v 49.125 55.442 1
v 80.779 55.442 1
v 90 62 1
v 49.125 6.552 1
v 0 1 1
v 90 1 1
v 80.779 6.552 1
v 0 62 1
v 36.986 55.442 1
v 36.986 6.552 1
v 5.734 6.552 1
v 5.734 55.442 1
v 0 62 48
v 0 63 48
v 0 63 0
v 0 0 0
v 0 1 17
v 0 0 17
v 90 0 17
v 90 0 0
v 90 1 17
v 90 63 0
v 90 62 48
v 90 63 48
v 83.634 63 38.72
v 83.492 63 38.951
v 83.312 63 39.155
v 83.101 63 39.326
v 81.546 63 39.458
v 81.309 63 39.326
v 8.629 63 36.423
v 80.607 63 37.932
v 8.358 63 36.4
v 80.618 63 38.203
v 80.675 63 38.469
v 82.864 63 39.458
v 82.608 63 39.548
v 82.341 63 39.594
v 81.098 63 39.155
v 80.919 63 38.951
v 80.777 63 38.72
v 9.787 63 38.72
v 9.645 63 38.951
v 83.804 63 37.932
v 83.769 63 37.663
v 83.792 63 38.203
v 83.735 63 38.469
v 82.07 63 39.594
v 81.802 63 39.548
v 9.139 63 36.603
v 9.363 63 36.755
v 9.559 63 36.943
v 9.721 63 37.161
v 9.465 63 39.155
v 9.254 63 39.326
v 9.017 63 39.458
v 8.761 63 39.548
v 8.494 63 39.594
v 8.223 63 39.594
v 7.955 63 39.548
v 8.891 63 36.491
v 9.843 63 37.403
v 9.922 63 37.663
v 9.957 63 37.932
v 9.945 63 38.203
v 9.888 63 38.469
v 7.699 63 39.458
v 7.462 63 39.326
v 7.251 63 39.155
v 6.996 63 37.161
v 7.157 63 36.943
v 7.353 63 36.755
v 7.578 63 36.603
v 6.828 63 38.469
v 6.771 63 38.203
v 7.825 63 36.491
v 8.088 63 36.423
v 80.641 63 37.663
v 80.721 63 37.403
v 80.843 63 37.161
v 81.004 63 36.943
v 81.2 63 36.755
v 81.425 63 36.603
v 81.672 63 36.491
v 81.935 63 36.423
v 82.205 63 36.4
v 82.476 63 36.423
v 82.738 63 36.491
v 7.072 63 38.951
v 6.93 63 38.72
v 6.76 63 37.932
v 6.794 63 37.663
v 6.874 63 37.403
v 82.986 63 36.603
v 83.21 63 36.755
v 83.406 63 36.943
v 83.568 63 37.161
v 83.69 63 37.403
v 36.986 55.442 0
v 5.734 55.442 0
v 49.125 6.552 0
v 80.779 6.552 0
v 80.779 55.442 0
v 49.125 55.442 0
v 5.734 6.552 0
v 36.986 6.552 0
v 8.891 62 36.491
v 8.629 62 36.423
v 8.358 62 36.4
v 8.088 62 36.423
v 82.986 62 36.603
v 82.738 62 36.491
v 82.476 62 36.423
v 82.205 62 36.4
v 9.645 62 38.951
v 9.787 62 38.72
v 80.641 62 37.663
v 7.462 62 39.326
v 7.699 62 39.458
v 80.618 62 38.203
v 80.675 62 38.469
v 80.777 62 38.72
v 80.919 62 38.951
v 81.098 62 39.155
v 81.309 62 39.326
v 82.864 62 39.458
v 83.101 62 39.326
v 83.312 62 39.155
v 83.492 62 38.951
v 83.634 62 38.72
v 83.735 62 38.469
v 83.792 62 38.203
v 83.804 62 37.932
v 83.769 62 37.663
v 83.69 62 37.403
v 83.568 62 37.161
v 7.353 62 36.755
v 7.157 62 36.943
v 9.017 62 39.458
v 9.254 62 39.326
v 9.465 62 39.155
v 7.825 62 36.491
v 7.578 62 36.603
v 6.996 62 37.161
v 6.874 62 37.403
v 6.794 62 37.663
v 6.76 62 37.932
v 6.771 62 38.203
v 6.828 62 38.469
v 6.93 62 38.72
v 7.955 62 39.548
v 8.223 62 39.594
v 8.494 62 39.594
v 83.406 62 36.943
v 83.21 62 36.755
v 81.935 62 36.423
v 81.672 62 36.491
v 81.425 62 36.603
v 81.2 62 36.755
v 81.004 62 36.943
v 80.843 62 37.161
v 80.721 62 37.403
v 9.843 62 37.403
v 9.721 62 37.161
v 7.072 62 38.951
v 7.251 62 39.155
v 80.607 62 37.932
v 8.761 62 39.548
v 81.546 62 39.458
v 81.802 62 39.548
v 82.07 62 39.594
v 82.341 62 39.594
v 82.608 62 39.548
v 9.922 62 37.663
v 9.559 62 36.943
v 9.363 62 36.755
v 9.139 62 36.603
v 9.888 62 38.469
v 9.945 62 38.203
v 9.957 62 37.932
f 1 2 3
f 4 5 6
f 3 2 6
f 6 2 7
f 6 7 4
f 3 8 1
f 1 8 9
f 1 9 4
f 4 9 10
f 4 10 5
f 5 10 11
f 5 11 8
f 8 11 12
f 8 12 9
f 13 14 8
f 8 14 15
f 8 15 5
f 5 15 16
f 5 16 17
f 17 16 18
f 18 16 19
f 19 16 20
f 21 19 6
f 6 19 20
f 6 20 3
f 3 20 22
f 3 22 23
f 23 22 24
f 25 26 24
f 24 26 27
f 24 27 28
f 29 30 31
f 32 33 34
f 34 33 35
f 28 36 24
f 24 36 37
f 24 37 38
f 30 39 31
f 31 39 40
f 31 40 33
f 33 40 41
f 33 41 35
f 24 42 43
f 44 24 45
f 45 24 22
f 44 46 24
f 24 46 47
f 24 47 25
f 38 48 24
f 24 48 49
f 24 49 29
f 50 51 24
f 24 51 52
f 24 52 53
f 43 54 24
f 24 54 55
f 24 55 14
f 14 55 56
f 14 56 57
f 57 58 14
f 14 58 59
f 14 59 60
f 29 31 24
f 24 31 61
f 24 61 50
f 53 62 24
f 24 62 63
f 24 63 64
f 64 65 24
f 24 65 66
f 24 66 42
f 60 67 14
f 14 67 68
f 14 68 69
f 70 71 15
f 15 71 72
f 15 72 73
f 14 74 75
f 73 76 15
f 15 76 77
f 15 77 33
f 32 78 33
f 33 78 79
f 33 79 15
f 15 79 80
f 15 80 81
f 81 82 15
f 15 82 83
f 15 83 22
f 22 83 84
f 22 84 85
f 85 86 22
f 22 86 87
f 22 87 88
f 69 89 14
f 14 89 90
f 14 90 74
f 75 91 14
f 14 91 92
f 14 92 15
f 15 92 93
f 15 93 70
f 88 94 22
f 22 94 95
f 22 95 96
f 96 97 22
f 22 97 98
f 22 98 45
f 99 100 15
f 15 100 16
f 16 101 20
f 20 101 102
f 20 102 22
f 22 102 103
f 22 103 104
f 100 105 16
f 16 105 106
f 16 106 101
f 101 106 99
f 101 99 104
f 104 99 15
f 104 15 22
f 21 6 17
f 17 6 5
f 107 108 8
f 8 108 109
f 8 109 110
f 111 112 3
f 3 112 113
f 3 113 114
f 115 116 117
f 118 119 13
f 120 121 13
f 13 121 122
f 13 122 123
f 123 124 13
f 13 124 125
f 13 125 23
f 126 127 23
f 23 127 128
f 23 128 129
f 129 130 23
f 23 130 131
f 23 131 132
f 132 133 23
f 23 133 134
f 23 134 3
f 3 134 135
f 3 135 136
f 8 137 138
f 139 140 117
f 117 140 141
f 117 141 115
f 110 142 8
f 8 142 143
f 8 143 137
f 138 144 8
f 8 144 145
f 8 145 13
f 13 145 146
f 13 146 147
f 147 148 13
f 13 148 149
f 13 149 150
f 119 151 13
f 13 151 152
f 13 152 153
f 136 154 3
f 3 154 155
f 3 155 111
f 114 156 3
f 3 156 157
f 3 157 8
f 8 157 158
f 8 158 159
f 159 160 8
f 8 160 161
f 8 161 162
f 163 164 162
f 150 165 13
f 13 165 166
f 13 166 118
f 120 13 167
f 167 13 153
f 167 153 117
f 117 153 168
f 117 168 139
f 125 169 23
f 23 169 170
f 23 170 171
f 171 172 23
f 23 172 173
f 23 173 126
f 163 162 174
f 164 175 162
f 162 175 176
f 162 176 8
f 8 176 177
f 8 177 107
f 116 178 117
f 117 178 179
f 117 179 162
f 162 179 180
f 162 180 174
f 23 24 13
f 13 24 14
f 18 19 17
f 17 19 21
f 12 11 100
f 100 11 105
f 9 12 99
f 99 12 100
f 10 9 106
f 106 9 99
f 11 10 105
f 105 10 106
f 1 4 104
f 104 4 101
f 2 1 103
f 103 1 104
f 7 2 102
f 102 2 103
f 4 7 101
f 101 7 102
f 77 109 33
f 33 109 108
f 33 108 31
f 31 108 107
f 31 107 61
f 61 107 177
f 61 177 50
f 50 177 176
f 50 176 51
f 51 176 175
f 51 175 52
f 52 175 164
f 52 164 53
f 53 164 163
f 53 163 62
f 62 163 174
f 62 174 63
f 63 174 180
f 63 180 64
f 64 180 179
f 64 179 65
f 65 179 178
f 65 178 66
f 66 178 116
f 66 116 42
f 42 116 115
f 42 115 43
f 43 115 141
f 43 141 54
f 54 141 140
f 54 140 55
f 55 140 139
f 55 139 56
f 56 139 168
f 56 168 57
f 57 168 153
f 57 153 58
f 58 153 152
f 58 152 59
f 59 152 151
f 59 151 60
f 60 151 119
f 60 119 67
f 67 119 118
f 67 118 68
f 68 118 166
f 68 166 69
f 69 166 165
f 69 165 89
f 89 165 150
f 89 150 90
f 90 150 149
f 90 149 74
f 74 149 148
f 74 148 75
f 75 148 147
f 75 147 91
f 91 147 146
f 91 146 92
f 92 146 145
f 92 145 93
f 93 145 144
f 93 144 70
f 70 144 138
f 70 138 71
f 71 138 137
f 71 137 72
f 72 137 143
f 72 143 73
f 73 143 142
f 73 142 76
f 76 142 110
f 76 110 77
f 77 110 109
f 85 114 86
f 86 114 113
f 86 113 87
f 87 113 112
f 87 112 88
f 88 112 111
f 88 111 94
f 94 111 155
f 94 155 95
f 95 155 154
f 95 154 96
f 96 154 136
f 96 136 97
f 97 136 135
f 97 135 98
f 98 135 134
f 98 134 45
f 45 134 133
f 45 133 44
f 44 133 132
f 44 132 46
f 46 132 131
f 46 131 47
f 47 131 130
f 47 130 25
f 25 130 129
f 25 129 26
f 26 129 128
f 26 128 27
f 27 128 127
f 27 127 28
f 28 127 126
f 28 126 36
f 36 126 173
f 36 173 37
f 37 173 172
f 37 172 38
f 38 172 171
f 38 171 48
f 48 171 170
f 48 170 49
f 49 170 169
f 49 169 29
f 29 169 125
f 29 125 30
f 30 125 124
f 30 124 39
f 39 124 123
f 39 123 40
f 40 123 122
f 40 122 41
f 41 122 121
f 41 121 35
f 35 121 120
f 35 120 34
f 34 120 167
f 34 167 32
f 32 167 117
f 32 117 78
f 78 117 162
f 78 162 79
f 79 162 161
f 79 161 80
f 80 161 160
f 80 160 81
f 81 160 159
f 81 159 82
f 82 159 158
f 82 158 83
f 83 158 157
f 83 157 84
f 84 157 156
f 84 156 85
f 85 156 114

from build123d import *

# Parameters (mm, degrees)
SKETCH_1_W          = 90
SKETCH_1_H          = 63
EXTRUDE_1_DEPTH     = 1
SKETCH_2_W          = 90
SKETCH_2_H          = 1
EXTRUDE_2_DEPTH     = 47
SKETCH_3_W          = 101.367565962
SKETCH_3_H          = 1
CUT_EXTRUDE_1_DEPTH = 31
SKETCH_4_W          = 31.251975893
SKETCH_4_H          = 48.889893619
SKETCH_4_W_2        = 31.654361849
CUT_EXTRUDE_2_DEPTH = 31
SKETCH_5_R          = 1.6
CUT_EXTRUDE_3_DEPTH = 31


with BuildPart() as part:
    # 草图1 → 凸台-拉伸1 (new body)
    with BuildSketch(Plane.XY):
        with Locations((45, 31.5)):
            Rectangle(SKETCH_1_W, SKETCH_1_H)
    extrude(amount=EXTRUDE_1_DEPTH)

    # 草图2 → 凸台-拉伸2 (add)
    with BuildSketch(Plane.XY.offset(1)):
        with Locations((45, 62.5)):
            Rectangle(SKETCH_2_W, SKETCH_2_H)
        with Locations((45, 0.5)):
            Rectangle(SKETCH_2_W, SKETCH_2_H)
    extrude(amount=EXTRUDE_2_DEPTH)

    # 草图3 → 切除-拉伸1 (cut)
    with BuildSketch(Plane.XY.offset(48)):
        with Locations((50.683782981, 0.5)):
            Rectangle(SKETCH_3_W, SKETCH_3_H)
    extrude(amount=-CUT_EXTRUDE_1_DEPTH, mode=Mode.SUBTRACT)

    # 草图4 → 切除-拉伸2 (cut)
    with BuildSketch(Plane.XY.offset(1)):
        with Locations((21.359825103, 30.997017556)):
            Rectangle(SKETCH_4_W, SKETCH_4_H)
        with Locations((64.951636971, 30.997017556)):
            Rectangle(SKETCH_4_W_2, SKETCH_4_H)
    extrude(amount=-CUT_EXTRUDE_2_DEPTH, mode=Mode.SUBTRACT)

    # 草图5 → 切除-拉伸3 (cut)
    with BuildSketch(Plane.XZ.offset(-62)):
        with Locations(Location((8.358150818, 38, 0), (0, 0, 270))):
            Circle(SKETCH_5_R)
        with Locations(Location((82.205212472, 38, 0), (0, 0, 270))):
            Circle(SKETCH_5_R)
    extrude(amount=-CUT_EXTRUDE_3_DEPTH, mode=Mode.SUBTRACT)


solid = part.part
